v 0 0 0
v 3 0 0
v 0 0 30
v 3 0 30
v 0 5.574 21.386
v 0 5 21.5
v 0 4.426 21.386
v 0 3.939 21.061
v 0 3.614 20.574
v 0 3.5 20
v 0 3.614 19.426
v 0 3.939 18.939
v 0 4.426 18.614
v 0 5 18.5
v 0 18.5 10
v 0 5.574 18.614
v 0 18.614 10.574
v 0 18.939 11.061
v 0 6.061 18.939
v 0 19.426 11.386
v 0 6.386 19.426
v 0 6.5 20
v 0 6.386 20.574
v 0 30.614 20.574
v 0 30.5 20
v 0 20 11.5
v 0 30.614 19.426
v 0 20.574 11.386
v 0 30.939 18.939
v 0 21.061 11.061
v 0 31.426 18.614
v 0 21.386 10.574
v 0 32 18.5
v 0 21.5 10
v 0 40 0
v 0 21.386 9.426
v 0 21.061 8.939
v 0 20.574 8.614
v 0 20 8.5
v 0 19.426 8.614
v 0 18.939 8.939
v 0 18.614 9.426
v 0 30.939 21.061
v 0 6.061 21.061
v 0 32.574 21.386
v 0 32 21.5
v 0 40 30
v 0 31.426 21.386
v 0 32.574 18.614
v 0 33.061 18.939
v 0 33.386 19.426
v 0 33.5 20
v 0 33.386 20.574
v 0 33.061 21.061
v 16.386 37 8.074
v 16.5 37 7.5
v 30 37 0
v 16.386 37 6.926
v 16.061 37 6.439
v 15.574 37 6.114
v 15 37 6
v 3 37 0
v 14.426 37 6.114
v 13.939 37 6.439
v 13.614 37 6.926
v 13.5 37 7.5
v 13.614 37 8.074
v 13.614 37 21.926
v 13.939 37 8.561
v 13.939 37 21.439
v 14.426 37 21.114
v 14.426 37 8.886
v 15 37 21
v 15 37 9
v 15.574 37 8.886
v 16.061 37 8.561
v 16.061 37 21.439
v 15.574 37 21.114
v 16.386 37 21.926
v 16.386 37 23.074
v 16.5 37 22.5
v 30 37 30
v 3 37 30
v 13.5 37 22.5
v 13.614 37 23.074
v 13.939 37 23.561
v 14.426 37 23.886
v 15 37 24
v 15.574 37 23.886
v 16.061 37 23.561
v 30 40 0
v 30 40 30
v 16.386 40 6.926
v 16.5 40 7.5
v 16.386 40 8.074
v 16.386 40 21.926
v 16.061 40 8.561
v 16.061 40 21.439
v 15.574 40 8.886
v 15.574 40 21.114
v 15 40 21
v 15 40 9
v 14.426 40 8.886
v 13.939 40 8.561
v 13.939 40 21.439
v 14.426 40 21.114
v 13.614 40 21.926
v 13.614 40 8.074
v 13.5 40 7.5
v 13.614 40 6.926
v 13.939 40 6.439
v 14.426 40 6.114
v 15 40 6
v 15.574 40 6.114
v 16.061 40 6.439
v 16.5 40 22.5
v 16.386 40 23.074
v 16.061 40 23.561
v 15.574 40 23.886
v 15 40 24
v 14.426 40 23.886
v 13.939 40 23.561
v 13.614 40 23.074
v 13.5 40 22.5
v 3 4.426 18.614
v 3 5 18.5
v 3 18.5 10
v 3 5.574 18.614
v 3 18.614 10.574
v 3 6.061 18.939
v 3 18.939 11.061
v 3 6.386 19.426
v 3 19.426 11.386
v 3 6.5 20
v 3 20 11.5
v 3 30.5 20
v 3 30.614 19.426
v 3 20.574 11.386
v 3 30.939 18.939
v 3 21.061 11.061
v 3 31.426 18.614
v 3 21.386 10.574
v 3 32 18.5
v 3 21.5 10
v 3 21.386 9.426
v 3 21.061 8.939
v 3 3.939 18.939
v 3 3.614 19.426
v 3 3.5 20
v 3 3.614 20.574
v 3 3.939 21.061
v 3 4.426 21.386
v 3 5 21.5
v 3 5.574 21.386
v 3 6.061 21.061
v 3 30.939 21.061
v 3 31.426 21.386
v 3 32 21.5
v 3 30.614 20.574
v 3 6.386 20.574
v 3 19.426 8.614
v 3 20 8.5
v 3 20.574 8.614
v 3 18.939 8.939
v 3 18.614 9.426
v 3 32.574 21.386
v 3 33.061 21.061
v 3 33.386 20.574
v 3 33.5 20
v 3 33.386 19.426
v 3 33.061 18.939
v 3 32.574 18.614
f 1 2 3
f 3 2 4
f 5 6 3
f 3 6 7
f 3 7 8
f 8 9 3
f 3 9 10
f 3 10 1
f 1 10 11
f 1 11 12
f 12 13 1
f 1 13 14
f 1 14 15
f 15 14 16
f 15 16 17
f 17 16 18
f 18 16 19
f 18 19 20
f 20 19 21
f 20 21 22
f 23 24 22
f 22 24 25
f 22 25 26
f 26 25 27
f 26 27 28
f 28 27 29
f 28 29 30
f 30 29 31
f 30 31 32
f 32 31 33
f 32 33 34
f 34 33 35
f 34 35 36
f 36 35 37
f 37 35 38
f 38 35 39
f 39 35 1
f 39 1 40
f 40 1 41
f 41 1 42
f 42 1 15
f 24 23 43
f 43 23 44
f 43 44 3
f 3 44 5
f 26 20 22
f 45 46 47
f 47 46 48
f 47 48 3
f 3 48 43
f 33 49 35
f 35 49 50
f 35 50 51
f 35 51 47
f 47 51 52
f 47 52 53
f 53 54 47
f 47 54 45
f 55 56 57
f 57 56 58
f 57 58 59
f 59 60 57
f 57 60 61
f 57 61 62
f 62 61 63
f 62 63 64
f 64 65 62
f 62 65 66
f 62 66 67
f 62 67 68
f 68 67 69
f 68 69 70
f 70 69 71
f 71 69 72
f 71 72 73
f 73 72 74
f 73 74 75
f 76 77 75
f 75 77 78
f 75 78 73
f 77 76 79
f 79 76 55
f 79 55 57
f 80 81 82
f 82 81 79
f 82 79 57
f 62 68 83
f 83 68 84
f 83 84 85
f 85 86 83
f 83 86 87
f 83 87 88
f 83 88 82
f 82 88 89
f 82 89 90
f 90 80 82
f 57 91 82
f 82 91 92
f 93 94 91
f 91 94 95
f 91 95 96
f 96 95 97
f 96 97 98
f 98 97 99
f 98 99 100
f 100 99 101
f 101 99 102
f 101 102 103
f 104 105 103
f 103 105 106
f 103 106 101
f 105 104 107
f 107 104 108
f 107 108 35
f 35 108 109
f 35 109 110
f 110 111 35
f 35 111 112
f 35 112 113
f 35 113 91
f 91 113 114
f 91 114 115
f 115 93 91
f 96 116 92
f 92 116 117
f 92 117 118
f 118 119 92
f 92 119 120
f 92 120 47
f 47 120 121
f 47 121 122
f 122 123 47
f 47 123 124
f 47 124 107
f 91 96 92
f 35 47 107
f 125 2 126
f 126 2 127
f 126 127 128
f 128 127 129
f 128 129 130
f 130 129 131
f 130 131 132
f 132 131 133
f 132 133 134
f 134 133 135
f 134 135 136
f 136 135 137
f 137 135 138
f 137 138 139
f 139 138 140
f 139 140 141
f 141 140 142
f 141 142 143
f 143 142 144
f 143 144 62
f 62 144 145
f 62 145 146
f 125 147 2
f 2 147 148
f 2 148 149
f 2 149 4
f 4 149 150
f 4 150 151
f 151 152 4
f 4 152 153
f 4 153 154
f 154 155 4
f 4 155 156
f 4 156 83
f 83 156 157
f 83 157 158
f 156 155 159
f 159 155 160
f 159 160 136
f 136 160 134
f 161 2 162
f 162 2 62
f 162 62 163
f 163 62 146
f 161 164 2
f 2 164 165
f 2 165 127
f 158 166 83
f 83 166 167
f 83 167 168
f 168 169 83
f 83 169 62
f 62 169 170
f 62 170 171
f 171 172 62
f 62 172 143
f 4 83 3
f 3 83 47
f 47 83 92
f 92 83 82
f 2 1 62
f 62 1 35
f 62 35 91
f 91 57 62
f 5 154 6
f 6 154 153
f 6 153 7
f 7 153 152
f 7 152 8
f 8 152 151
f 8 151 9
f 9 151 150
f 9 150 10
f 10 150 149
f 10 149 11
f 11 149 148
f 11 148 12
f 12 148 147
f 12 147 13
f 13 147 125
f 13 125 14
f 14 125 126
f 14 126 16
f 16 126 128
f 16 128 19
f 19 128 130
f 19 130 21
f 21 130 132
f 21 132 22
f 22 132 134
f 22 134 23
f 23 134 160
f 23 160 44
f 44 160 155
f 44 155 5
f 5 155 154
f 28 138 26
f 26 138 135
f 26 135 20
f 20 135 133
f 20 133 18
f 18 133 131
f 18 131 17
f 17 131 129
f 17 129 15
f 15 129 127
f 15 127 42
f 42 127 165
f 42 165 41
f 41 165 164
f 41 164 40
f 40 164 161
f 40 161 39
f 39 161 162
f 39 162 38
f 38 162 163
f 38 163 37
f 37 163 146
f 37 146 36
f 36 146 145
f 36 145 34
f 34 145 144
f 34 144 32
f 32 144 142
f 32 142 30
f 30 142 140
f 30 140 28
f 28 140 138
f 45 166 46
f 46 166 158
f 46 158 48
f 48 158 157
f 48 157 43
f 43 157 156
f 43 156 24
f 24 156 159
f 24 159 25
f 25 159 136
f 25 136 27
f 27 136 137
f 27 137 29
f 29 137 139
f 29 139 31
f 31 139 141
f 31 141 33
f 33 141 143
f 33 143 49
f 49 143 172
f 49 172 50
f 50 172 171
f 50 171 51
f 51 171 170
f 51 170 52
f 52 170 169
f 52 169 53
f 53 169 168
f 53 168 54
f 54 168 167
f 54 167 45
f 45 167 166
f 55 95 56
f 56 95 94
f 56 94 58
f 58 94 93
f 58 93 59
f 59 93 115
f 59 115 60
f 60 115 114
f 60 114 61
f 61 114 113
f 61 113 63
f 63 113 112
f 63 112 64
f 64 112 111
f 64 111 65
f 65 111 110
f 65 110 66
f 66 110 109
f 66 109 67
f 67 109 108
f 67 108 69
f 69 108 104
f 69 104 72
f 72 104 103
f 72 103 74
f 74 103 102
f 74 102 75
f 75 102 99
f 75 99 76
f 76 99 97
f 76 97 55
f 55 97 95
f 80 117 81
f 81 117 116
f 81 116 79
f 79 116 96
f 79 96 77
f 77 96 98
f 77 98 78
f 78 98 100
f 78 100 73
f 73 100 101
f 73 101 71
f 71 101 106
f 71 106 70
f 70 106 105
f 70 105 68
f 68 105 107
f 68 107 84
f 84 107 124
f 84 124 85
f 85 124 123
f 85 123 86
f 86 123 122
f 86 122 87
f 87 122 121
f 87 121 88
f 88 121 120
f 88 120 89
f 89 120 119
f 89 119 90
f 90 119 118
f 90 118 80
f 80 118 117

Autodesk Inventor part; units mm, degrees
sketch "Sketch1" plane through (0, 0, 0) normal (0, 0, 1) x (1, 0, 0)
  line L0 (0, 0) -> (0, 40)
  line L1 (0, 40) -> (30, 40)
  line L2 (30, 40) -> (30, 37)
  line L3 (30, 37) -> (3, 37)
  line L4 (3, 37) -> (3, 0)
  line L5 (3, 0) -> (0, 0)
extrude "Extrusion1" add sketch "Sketch1" along normal blind 30
sketch "Sketch2" plane through (3, 0, 0) normal (1, 0, 0) x (0, 0, -1)
  line L0 (-30, 37) -> (-30, 40) projected
  line L1 (-30, 40) -> (-20, 40)
  line L2 (0, 40) -> (-30, 40) projected
  line L3 (0, 0) -> (-30, 0) projected
  line L4 (-20, 0) -> (-10, 0)
  line L5 (0, 37) -> (-30, 37) projected
  circle A0 centre (-20, 32) radius 1.5
  circle A1 centre (-20, 5) radius 1.5
  circle A2 centre (-10, 20) radius 1.5
extrude "Extrusion2" cut sketch "Sketch2" against normal blind 30
sketch "Sketch3" plane through (0, 40, 0) normal (0, 1, 0) x (1, 0, 0)
  line L0 (0, 0) -> (0, -30) projected
  line L1 (3, 0) -> (30, 0) projected
  line L2 (3, -30) -> (30, -30) projected
  circle A0 centre (15, -15) radius 1.5
extrude "Extrusion3" cut sketch "Sketch3" against normal blind 30
sketch "Sketch4" plane through (0, 40, 0) normal (0, 1, 0) x (1, 0, 0)
  circle A0 centre (15, -15) radius 1.5 projected
  circle A1 centre (15, -15) radius 1.5
  point P0 (0, 0)
extrude "Extrusion4" add sketch "Sketch4" against normal blind 3
sketch "Sketch5" plane through (0, 40, 0) normal (0, 1, 0) x (1, 0, 0)
  point P0 (0, 0)
sketch "Sketch6" plane through (0, 40, 0) normal (0, 1, 0) x (1, 0, 0)
  line L0 (3, -30) -> (30, -30) projected
  circle A0 centre (15, -22.5) radius 1.5
  circle A1 centre (15, -7.5) radius 1.5
  point P0 (0, 0)
extrude "Extrusion5" cut sketch "Sketch6" against normal blind 3
properties part number "T_shape"
